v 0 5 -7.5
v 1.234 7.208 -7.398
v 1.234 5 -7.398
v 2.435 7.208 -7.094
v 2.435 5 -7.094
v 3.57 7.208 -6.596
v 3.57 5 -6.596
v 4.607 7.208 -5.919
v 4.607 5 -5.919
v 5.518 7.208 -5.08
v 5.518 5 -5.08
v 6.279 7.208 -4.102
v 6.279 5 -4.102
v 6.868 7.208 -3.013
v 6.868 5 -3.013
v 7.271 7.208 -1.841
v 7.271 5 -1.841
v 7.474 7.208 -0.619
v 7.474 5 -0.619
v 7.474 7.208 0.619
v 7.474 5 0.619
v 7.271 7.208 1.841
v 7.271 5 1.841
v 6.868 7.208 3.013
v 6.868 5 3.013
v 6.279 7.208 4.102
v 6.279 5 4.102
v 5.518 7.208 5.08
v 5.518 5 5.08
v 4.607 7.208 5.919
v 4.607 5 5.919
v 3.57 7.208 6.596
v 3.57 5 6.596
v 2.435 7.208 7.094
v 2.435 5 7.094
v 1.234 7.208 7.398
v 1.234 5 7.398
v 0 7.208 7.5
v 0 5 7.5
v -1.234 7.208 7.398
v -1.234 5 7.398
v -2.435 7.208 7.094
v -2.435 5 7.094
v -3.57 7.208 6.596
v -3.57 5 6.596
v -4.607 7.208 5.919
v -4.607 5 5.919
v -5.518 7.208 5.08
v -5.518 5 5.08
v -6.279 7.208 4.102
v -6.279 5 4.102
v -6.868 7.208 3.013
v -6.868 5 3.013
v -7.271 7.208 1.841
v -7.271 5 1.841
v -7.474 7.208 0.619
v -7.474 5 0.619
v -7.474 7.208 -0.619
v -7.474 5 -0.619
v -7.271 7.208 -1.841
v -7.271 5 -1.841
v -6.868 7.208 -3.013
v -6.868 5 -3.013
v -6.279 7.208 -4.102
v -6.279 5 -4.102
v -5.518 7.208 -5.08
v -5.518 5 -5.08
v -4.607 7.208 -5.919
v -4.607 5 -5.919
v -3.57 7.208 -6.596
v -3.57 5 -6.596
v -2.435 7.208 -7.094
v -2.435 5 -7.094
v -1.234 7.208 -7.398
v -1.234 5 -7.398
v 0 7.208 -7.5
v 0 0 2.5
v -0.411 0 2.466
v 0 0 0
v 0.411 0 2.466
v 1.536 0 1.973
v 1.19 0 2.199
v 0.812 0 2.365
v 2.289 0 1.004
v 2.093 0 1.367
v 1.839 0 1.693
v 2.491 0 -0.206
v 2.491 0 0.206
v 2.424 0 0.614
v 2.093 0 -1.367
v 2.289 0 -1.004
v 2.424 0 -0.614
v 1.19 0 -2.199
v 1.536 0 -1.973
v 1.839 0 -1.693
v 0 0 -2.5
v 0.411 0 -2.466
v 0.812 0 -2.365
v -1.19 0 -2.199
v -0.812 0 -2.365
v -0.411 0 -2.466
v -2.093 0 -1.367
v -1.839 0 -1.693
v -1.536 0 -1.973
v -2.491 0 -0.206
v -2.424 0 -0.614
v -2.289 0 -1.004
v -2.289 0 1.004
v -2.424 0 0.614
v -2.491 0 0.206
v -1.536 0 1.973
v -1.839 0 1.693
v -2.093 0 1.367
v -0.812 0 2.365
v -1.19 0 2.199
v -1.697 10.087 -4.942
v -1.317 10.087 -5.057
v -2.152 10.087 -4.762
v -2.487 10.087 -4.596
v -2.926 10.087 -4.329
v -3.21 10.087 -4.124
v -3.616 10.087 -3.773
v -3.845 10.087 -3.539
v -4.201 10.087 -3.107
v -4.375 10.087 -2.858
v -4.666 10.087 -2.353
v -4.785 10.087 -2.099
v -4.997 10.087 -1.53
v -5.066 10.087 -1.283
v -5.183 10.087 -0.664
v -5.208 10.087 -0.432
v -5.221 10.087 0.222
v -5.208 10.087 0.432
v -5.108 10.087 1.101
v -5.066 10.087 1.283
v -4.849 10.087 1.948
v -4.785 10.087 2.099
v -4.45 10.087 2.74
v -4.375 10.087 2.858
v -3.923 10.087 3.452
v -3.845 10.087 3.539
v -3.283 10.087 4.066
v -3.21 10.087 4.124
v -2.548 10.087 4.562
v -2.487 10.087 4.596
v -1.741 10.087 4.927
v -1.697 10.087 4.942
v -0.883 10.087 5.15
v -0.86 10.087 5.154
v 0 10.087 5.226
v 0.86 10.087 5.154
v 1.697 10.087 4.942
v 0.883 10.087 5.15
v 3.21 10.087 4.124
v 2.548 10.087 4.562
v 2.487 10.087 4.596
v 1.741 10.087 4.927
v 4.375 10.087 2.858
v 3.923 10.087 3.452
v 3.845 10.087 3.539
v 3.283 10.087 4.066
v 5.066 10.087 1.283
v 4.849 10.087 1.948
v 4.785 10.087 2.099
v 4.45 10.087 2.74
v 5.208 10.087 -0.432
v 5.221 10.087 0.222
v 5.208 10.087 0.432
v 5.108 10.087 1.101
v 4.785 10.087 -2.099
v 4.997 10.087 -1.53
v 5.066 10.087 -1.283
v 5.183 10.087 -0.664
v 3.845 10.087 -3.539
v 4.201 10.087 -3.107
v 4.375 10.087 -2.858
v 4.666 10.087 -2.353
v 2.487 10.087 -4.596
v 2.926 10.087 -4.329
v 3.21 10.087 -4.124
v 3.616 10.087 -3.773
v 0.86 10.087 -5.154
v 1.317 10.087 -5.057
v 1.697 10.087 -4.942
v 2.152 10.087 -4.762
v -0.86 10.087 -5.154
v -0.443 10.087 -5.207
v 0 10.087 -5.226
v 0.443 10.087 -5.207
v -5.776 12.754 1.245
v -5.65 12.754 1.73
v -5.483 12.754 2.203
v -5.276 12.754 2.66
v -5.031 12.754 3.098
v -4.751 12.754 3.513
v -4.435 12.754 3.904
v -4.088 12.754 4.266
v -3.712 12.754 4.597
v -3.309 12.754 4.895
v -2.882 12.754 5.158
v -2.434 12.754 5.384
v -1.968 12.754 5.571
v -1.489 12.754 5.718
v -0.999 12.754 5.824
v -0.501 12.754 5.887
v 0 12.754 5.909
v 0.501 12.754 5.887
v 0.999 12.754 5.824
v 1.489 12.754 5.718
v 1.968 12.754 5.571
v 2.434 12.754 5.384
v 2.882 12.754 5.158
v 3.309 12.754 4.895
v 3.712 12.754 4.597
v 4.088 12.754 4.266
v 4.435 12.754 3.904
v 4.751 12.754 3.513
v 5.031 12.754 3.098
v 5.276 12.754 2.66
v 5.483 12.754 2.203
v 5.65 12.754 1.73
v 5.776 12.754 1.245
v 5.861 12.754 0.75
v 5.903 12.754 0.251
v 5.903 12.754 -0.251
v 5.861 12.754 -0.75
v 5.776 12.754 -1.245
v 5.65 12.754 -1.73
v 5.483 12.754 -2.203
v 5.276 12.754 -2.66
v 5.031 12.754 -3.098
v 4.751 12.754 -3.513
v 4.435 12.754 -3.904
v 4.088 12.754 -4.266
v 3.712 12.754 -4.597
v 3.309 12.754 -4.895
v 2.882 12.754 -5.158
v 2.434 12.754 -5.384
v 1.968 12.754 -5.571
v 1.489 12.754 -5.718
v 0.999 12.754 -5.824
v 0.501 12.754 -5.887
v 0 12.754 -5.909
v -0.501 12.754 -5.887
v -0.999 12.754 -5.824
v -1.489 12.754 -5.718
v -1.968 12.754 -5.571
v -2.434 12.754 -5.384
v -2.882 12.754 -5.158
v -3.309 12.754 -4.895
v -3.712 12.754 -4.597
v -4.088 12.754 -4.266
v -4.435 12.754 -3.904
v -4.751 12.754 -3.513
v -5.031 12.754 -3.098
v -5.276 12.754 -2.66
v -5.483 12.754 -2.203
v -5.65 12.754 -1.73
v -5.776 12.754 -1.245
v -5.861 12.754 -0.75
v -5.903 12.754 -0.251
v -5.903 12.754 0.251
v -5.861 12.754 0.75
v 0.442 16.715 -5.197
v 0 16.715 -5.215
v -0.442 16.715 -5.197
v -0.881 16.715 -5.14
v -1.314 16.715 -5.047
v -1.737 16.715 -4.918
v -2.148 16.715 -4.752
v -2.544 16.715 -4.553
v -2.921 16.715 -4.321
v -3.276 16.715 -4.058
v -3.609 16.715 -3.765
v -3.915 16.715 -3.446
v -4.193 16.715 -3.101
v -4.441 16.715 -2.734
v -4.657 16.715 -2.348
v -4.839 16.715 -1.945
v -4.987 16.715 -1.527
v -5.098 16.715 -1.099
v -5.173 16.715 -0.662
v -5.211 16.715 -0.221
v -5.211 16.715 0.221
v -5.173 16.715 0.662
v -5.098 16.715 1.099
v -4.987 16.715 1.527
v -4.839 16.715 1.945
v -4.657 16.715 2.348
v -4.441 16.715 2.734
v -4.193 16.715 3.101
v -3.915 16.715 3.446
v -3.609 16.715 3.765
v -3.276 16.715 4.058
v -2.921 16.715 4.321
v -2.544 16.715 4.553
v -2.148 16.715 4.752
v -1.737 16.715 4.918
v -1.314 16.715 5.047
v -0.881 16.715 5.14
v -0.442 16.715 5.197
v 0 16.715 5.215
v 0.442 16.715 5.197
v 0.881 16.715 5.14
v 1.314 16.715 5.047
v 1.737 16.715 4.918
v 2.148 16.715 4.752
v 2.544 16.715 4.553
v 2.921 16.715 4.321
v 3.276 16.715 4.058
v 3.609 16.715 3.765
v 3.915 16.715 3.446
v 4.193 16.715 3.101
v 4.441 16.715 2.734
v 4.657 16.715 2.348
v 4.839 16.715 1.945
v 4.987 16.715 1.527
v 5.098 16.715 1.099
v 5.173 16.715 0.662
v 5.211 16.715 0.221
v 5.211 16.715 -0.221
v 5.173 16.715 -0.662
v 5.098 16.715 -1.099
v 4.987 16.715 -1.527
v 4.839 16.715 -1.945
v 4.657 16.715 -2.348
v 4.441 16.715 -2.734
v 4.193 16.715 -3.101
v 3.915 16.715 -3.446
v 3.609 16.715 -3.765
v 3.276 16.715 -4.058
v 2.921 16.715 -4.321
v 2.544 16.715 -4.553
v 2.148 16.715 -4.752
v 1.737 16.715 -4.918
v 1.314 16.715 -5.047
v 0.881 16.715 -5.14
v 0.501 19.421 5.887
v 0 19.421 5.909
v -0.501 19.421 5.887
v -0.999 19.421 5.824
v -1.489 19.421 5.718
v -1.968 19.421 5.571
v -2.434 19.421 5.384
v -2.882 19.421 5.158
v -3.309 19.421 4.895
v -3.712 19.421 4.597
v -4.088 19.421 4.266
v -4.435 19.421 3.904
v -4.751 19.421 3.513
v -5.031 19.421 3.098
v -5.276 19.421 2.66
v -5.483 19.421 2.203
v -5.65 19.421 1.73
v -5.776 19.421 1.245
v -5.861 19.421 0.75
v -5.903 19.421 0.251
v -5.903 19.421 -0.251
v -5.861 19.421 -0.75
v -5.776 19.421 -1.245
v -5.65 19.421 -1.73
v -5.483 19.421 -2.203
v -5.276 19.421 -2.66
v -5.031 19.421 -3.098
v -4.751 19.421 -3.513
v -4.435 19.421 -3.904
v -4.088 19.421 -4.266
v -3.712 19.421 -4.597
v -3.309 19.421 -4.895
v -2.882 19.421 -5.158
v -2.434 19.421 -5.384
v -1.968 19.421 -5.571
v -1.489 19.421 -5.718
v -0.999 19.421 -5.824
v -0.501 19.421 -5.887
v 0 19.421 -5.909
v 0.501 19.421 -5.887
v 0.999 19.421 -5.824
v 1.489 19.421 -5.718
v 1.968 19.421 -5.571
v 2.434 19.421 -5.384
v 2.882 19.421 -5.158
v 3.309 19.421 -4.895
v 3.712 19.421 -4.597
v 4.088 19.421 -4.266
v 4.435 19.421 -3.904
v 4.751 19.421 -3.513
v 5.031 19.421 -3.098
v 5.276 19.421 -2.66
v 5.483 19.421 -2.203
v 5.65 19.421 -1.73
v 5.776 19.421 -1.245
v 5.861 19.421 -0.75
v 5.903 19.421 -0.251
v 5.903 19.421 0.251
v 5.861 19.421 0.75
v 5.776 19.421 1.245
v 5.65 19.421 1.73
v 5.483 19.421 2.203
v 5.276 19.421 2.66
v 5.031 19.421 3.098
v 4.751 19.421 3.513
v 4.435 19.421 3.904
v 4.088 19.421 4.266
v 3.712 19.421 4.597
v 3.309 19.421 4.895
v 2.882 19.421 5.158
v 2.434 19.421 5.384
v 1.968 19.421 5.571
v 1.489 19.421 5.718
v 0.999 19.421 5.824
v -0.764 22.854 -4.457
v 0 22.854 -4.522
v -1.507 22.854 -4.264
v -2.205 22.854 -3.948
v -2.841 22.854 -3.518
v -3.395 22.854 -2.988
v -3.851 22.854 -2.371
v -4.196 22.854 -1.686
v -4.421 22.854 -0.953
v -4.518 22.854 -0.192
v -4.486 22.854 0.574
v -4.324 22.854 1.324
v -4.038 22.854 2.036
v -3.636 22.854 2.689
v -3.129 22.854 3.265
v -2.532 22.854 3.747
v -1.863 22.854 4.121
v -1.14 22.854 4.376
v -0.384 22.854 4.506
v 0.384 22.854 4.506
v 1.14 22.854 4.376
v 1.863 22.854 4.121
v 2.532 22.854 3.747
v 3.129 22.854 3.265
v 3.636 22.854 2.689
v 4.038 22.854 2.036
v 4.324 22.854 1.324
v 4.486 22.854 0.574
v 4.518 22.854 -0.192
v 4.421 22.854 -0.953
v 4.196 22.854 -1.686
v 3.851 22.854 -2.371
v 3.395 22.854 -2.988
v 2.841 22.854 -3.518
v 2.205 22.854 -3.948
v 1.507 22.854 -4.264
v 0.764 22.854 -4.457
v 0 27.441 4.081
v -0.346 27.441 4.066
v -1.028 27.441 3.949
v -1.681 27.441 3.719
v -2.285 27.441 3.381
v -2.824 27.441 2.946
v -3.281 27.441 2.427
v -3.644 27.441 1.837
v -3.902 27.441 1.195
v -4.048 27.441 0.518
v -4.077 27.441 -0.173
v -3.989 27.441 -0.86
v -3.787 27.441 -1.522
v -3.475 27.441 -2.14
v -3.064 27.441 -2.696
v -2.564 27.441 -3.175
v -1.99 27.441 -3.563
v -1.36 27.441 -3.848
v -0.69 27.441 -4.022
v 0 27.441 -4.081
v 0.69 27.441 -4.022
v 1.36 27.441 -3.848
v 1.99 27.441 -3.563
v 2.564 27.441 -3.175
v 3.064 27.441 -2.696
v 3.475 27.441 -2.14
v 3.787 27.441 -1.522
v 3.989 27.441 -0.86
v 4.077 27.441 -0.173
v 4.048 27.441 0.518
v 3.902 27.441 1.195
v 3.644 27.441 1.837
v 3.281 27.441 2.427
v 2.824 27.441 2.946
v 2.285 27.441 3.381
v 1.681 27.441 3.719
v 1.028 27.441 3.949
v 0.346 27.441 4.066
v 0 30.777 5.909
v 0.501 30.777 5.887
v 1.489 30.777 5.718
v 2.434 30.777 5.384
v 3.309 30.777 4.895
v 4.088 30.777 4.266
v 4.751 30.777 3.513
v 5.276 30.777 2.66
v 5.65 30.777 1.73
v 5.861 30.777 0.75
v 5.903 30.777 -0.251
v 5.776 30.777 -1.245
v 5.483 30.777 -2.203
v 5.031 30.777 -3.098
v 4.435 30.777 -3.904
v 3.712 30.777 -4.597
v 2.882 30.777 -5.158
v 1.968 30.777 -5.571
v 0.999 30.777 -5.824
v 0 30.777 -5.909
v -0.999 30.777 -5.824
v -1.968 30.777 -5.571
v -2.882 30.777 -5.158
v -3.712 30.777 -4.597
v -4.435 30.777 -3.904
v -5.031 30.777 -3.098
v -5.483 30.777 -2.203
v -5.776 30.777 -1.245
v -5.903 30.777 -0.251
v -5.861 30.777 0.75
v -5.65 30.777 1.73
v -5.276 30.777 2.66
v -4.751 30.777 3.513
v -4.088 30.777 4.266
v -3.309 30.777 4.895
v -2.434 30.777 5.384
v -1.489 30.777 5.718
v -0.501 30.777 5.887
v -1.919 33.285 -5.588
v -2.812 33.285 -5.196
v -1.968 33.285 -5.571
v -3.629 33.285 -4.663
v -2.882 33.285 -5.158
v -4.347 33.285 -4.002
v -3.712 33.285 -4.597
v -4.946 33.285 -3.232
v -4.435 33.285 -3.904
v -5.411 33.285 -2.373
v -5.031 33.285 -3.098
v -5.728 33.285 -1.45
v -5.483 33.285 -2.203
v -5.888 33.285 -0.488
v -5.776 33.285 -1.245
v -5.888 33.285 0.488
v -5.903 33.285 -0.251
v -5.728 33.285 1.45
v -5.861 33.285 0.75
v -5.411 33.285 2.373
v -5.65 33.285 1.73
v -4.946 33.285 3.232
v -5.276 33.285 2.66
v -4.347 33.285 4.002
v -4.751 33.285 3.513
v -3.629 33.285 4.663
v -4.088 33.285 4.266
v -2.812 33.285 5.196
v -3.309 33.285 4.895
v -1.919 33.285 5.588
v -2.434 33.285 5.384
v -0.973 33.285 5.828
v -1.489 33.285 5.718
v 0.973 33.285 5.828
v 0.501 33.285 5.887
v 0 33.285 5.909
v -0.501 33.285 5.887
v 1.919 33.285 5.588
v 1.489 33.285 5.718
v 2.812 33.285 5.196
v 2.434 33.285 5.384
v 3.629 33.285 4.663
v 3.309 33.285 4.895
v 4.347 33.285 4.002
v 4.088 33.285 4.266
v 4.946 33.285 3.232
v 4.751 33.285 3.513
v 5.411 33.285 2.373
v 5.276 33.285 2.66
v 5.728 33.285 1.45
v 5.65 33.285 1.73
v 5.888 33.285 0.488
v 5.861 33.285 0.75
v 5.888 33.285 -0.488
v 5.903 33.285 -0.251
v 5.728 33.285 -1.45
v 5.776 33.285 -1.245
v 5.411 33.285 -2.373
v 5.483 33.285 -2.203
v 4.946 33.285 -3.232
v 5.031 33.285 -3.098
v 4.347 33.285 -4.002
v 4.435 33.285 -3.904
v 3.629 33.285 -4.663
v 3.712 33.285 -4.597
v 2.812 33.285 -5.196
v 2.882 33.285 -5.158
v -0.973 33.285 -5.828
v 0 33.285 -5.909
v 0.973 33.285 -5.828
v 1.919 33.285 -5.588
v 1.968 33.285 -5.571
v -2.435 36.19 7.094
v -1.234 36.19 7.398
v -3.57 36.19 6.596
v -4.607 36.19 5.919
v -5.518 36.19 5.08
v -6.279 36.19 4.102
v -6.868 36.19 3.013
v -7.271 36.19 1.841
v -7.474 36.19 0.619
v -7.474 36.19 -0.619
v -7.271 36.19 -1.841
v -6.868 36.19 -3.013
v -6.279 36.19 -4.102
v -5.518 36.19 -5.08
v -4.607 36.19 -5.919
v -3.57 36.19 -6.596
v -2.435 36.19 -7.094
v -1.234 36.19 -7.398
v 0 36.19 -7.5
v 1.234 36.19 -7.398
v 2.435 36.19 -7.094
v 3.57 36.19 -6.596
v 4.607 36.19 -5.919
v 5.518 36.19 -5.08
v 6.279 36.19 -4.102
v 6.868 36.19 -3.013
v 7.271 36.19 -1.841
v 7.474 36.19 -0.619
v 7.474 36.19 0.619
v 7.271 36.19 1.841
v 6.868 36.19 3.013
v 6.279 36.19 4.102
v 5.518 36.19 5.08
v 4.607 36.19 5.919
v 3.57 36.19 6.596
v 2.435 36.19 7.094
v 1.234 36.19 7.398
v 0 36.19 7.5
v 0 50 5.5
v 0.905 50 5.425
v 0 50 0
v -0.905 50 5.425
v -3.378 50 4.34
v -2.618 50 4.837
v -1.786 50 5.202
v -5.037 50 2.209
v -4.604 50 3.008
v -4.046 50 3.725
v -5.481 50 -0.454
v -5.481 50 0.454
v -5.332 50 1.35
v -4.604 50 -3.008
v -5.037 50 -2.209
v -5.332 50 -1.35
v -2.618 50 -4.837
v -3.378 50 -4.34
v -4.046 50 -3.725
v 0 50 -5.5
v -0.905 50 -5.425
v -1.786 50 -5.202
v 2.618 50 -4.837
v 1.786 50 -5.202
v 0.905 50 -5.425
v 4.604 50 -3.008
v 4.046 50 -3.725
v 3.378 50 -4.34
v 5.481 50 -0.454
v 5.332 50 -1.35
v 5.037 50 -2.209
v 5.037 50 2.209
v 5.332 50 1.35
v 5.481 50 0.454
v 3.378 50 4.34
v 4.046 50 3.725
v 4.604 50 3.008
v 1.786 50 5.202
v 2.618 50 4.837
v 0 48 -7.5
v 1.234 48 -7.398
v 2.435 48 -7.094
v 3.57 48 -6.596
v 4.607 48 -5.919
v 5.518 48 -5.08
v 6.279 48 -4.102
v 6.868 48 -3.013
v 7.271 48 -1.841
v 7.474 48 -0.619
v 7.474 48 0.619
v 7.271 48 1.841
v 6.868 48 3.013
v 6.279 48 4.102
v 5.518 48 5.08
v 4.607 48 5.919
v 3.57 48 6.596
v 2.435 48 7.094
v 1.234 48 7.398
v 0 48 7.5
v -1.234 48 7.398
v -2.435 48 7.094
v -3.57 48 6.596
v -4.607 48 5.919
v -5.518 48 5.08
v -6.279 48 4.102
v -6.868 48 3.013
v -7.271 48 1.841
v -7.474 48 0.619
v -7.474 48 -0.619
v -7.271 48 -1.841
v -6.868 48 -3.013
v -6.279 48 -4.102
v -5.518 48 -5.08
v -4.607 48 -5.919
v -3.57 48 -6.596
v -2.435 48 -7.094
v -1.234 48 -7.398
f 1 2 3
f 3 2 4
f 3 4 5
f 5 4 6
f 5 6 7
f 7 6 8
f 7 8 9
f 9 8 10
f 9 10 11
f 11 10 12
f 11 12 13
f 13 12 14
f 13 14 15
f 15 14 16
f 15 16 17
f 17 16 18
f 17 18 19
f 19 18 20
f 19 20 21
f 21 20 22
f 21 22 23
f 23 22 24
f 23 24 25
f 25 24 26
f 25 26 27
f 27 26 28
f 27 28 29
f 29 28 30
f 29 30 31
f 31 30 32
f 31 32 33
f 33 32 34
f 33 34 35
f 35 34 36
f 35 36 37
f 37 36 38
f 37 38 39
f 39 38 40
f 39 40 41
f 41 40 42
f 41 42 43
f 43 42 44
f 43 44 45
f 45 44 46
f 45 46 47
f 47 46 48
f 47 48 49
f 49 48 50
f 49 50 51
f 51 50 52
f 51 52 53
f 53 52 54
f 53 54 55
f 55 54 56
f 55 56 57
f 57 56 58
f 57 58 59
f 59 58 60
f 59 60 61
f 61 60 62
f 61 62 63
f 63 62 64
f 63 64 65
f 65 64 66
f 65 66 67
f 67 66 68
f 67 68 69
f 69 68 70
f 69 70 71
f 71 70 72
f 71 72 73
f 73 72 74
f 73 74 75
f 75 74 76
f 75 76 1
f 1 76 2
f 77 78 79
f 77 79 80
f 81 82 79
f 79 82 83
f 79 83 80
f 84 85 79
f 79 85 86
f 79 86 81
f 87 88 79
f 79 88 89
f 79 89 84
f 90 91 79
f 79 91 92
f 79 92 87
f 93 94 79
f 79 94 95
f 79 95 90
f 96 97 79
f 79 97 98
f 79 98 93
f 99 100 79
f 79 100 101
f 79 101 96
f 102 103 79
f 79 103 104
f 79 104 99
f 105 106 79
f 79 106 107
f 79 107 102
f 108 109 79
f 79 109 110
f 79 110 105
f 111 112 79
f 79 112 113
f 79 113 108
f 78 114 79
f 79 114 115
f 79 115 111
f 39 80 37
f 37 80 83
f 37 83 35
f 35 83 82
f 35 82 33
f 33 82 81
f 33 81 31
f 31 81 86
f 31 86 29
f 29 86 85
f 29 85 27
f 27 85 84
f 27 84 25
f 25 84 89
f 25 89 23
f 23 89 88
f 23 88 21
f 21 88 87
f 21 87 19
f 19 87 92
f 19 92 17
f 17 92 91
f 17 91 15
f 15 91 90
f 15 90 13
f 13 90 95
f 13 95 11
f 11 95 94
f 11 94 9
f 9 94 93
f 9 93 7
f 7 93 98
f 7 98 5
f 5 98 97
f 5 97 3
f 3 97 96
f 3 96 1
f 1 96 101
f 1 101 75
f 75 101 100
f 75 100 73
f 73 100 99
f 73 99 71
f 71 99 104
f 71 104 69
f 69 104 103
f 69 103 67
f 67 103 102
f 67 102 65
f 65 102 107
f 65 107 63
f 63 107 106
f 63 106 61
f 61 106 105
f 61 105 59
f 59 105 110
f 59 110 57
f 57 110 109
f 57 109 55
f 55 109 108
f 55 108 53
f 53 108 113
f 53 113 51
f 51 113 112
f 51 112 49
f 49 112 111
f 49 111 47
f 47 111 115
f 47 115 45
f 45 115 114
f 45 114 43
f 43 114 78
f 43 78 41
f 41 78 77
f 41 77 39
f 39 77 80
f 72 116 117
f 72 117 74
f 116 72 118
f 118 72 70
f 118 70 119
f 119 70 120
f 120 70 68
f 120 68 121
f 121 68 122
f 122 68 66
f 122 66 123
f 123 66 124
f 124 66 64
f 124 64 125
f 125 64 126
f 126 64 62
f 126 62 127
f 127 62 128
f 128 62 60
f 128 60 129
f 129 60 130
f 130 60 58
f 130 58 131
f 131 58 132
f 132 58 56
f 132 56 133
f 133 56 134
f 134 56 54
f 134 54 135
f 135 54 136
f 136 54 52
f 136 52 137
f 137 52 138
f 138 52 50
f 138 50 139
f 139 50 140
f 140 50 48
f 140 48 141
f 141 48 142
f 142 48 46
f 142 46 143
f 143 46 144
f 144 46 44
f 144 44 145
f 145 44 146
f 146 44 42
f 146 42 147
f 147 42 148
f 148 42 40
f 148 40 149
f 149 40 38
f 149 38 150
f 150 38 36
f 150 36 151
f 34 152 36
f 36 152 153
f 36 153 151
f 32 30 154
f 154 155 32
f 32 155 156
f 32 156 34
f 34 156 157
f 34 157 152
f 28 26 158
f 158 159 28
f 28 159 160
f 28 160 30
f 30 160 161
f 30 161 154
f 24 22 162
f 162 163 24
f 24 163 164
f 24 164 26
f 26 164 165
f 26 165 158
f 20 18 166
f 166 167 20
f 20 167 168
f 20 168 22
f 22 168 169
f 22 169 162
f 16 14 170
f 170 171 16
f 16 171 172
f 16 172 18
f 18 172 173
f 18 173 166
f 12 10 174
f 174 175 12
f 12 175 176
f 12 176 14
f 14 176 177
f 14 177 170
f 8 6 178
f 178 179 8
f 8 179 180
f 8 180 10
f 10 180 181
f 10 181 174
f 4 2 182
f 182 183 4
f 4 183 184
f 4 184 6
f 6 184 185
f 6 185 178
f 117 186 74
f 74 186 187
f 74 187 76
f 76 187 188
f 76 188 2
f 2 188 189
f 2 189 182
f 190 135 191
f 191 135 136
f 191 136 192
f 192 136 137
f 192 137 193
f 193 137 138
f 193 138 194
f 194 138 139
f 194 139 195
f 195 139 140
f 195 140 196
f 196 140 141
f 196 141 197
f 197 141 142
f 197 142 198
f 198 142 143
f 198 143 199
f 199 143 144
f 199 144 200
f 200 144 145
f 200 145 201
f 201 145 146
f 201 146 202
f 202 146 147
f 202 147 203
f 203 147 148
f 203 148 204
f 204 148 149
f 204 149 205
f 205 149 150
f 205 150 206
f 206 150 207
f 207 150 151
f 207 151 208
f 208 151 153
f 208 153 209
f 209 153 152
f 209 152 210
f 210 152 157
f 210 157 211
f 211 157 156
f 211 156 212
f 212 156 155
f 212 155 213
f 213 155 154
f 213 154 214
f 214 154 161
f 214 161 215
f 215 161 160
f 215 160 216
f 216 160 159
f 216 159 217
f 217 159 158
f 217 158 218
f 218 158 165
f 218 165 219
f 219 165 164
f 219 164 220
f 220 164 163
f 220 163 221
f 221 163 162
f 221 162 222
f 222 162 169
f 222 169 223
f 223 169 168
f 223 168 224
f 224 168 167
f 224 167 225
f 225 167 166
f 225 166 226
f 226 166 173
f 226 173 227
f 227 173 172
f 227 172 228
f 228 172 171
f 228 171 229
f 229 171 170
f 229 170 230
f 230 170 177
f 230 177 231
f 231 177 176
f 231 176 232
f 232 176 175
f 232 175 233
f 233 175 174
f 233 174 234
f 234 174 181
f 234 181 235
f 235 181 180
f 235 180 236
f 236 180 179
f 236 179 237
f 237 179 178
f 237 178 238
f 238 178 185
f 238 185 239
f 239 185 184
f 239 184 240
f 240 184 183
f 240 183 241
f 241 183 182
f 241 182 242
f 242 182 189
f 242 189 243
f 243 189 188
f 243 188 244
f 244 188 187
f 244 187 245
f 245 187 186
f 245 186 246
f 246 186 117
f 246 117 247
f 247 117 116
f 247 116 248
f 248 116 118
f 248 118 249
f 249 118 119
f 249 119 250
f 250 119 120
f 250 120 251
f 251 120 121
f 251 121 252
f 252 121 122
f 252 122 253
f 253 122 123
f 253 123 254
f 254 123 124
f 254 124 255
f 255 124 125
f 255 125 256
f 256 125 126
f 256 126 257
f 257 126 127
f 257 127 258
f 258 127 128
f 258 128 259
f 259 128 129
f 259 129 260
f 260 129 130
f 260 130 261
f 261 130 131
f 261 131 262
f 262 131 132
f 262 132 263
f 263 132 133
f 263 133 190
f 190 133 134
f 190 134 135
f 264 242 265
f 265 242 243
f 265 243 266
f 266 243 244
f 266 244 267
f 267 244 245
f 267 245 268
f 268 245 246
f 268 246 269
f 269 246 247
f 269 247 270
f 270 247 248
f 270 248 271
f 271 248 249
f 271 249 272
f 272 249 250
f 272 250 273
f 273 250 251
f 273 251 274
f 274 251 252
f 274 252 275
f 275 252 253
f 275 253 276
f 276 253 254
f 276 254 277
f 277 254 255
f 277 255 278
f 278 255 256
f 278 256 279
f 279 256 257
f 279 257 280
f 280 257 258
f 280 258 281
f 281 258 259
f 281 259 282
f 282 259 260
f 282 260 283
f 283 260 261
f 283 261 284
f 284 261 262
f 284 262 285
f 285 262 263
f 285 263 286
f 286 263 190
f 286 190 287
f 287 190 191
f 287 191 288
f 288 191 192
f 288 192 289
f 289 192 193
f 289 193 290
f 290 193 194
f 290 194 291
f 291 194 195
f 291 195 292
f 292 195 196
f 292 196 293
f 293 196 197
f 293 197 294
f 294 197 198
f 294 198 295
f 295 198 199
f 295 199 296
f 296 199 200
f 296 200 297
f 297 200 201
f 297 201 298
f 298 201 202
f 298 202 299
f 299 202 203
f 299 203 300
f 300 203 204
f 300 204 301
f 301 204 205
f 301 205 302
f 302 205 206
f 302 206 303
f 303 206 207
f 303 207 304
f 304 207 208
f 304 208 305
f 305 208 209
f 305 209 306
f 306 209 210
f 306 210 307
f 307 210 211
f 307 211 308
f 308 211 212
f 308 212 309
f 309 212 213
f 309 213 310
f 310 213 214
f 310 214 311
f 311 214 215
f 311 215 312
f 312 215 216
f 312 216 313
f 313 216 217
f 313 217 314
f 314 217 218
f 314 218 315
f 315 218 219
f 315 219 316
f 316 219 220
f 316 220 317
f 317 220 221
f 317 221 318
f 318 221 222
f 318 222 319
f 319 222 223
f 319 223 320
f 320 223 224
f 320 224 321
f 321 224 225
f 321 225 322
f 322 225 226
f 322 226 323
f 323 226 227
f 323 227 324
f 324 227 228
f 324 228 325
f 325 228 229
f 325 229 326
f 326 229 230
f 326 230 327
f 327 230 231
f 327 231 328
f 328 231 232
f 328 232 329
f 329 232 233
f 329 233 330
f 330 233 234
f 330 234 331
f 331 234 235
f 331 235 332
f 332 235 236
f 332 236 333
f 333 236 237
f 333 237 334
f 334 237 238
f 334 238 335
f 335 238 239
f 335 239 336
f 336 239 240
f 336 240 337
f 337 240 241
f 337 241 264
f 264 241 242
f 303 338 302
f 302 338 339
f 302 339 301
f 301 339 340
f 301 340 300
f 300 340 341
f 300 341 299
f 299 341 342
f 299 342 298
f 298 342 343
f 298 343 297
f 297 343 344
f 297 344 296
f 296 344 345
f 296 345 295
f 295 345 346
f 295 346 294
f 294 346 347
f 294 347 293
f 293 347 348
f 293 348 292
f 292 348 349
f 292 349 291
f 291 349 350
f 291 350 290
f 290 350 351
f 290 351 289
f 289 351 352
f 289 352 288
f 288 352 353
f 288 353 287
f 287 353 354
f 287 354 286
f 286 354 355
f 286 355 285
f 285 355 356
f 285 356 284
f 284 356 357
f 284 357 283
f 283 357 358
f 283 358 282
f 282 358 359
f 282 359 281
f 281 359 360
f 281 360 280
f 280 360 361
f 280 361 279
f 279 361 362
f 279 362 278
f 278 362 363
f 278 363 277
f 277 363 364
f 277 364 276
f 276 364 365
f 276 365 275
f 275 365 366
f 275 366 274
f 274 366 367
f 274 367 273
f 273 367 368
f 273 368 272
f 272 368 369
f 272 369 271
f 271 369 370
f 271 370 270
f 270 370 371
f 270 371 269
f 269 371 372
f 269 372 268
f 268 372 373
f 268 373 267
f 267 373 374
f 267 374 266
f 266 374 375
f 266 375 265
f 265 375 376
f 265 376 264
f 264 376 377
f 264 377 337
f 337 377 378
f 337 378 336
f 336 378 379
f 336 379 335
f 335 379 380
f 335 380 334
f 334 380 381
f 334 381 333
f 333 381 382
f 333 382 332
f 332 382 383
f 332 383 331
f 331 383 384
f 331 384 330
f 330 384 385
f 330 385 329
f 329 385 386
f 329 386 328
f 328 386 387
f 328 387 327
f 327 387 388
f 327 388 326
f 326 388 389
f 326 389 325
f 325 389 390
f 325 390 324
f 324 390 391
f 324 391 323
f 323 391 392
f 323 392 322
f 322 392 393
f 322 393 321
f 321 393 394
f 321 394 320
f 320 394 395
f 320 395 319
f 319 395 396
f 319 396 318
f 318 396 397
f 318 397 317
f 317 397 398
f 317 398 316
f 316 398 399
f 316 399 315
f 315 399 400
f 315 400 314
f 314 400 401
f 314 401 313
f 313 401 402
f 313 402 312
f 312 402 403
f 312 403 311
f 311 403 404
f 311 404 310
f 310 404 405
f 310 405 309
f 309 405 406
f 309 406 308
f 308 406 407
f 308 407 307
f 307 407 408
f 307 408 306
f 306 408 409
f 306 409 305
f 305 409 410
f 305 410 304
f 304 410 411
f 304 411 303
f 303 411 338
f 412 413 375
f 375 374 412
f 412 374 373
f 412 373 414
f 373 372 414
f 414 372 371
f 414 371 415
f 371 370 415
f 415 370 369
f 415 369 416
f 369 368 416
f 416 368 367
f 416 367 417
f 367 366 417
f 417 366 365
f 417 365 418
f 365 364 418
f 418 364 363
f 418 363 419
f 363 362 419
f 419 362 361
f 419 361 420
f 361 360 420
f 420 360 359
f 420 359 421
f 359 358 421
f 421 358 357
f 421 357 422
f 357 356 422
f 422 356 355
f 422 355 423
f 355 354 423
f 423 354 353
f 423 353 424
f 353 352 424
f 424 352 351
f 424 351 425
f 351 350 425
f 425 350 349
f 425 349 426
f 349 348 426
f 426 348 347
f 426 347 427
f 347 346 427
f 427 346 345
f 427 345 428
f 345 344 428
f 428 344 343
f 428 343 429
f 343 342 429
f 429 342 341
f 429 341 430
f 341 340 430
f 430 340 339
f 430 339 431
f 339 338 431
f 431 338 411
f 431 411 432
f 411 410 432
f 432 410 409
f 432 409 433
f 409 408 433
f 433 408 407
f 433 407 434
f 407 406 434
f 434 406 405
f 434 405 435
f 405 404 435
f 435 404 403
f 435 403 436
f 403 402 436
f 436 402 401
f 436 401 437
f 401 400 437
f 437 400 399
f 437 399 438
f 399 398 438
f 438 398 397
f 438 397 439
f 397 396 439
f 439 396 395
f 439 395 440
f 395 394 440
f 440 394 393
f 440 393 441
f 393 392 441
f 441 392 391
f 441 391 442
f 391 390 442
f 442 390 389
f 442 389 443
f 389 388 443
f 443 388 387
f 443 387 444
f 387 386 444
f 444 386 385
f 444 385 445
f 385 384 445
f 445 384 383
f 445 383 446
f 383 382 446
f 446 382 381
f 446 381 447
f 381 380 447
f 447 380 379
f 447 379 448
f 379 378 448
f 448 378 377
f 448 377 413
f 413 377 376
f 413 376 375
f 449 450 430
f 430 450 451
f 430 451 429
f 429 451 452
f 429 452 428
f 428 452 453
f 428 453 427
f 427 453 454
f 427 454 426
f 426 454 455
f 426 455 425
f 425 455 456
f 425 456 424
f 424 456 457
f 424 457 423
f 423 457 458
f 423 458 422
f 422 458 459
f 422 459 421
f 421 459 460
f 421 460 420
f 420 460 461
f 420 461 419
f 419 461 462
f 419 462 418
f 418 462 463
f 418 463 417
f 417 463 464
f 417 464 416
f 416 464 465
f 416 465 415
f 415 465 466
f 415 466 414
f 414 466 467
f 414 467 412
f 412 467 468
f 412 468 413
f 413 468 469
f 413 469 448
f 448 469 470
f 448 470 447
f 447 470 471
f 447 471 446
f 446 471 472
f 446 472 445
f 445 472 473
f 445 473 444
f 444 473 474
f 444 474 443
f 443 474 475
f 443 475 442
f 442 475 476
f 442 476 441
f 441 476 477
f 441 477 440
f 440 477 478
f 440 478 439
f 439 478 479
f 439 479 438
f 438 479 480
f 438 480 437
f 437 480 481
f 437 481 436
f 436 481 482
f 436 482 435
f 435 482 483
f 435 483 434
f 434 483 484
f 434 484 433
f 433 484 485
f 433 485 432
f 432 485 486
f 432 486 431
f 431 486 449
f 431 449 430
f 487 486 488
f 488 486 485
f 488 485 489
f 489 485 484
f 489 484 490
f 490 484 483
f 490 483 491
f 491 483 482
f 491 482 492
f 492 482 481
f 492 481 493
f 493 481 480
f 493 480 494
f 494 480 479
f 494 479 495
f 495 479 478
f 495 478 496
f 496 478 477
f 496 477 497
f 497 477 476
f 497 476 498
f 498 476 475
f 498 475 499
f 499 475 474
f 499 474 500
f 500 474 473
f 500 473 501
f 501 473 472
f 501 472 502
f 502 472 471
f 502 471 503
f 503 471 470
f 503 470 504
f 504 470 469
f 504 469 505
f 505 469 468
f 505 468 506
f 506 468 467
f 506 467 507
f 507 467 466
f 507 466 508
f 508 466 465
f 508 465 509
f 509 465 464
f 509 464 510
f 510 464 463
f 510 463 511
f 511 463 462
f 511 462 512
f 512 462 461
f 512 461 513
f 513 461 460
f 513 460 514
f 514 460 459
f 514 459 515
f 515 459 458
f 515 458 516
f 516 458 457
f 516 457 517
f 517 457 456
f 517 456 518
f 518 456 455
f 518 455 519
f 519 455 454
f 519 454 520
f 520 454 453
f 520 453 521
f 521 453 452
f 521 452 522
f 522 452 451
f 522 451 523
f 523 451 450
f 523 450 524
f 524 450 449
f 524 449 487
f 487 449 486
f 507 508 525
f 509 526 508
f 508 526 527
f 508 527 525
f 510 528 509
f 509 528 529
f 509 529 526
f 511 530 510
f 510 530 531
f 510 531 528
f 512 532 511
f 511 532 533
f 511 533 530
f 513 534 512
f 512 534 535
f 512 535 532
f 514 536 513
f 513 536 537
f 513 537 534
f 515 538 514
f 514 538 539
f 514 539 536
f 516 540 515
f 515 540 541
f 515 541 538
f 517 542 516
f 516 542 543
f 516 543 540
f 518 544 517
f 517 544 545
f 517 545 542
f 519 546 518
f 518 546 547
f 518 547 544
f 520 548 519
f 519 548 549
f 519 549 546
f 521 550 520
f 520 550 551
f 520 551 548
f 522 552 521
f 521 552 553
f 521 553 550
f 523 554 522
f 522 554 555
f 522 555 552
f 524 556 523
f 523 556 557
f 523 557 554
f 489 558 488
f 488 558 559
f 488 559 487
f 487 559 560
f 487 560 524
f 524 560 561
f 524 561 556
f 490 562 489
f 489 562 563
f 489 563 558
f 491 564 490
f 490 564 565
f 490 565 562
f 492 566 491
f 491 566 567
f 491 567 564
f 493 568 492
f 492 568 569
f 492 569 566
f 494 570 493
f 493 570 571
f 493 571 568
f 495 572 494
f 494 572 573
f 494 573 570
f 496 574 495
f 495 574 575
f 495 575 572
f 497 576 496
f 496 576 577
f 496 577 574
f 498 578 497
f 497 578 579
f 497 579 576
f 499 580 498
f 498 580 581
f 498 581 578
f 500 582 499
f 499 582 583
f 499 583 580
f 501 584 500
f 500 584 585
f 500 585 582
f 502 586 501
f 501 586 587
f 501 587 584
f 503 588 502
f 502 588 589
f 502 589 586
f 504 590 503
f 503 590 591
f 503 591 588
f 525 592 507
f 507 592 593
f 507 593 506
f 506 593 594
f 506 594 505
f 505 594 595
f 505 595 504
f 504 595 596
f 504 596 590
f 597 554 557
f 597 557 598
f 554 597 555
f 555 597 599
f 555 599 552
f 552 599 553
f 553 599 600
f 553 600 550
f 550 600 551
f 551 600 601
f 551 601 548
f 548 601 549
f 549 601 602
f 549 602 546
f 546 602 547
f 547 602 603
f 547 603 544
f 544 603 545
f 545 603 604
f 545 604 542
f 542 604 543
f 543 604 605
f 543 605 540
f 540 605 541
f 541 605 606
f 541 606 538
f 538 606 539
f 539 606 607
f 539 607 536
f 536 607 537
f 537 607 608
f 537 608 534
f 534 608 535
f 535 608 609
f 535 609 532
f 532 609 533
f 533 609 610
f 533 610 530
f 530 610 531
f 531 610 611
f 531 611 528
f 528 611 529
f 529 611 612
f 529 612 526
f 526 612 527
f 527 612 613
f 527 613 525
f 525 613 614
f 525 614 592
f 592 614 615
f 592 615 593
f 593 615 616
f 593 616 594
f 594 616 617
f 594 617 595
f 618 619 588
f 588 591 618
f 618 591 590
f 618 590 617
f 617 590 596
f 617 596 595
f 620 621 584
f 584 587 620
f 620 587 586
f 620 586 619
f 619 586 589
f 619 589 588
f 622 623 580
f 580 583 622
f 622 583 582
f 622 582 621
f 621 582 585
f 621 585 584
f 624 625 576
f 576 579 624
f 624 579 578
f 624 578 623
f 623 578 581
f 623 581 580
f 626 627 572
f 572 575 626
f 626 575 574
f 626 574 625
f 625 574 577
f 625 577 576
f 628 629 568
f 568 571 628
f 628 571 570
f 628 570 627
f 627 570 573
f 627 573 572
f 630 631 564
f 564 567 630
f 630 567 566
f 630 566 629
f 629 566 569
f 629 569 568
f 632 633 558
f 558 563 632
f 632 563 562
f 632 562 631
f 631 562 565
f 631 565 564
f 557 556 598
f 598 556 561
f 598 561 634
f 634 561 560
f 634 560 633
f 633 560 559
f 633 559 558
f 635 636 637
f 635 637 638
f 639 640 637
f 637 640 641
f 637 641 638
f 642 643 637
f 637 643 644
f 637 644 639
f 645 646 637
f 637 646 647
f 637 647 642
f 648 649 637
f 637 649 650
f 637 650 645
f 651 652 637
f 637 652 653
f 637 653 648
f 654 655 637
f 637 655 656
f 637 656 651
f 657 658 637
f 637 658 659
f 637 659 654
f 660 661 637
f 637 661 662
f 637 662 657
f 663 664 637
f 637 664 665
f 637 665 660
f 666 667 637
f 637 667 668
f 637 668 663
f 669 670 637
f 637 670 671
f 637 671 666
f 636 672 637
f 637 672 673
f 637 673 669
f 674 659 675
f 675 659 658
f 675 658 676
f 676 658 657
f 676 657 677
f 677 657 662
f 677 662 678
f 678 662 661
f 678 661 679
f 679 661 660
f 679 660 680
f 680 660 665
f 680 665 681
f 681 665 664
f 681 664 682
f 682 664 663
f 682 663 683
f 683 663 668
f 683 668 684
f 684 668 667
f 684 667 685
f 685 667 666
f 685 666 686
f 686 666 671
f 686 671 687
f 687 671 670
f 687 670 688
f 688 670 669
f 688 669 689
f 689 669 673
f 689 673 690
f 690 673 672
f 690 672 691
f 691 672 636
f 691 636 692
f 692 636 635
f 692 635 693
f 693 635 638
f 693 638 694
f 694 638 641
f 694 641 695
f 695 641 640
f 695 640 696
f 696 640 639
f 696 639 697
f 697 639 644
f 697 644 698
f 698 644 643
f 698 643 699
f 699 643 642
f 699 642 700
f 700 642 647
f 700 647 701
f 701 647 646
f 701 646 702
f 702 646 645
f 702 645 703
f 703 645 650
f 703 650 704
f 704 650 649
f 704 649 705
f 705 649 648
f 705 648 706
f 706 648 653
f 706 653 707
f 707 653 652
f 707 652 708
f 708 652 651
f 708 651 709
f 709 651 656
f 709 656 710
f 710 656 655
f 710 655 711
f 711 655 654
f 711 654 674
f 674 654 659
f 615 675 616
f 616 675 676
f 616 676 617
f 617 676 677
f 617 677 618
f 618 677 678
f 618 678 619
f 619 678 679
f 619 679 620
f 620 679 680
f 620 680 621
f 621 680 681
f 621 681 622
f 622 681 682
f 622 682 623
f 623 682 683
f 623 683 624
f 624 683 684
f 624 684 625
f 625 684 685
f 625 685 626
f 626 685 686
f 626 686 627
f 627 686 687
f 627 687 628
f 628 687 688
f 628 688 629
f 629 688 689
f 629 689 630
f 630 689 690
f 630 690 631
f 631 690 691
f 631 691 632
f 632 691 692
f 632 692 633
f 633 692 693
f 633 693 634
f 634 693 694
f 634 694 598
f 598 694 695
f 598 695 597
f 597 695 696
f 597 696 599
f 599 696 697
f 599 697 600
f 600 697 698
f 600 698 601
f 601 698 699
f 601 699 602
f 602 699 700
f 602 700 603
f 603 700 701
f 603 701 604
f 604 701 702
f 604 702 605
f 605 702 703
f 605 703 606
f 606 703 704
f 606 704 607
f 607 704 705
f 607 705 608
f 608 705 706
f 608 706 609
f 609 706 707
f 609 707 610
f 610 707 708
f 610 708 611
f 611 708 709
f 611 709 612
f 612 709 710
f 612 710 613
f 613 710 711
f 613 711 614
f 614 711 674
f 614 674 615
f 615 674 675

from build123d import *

# Parameters (mm, degrees)
SKETCH1_R           = 7.5
BOSS_EXTRUDE1_DEPTH = 50
CHAMFER1_SIZE       = 5
CHAMFER2_SIZE       = 2


with BuildPart() as part:
    # Sketch1 → Boss-Extrude1 (new body)
    with BuildSketch(Plane(origin=(0, 0, 0), x_dir=(1, 0, 0), z_dir=(0, 1, 0))):
        with Locations(Location((0, 0, 0), (0, 0, 270))):
            Circle(SKETCH1_R)
    extrude(amount=BOSS_EXTRUDE1_DEPTH)

    # Chamfer1
    chamfer1_edges = [part.edges().sort_by_distance(p)[0] for p in [
        (0, 0, -7.5),
    ]]
    chamfer(chamfer1_edges, length=CHAMFER1_SIZE)

    # Chamfer2
    chamfer2_edges = [part.edges().sort_by_distance(p)[0] for p in [
        (0, 50, -7.5),
    ]]
    chamfer(chamfer2_edges, length=CHAMFER2_SIZE)

    # Sketch2 → Cut-Revolve1 (revolve, cut)
    with BuildSketch(Plane.XY, mode=Mode.PRIVATE) as cut_revolve1_sk:
        Polygon((7.5, 36.190061777), (5.908616691, 33.28526698), (5.908616691, 30.776580564), (4.081049732, 27.440673393), (4.522237355, 22.854412934), (5.908616691, 19.421473627), (5.215427023, 16.71473302), (5.908616691, 12.753649205), (5.22558542, 10.08657472), (7.5, 7.208131864), (18.320012644, 16.71473302), align=None)
    revolve(cut_revolve1_sk.sketch.rotate(Axis((0, 0, 0), (0, 1, 0)), 90), axis=Axis((0, 0, 0), (0, 1, 0)), mode=Mode.SUBTRACT)


solid = part.part
